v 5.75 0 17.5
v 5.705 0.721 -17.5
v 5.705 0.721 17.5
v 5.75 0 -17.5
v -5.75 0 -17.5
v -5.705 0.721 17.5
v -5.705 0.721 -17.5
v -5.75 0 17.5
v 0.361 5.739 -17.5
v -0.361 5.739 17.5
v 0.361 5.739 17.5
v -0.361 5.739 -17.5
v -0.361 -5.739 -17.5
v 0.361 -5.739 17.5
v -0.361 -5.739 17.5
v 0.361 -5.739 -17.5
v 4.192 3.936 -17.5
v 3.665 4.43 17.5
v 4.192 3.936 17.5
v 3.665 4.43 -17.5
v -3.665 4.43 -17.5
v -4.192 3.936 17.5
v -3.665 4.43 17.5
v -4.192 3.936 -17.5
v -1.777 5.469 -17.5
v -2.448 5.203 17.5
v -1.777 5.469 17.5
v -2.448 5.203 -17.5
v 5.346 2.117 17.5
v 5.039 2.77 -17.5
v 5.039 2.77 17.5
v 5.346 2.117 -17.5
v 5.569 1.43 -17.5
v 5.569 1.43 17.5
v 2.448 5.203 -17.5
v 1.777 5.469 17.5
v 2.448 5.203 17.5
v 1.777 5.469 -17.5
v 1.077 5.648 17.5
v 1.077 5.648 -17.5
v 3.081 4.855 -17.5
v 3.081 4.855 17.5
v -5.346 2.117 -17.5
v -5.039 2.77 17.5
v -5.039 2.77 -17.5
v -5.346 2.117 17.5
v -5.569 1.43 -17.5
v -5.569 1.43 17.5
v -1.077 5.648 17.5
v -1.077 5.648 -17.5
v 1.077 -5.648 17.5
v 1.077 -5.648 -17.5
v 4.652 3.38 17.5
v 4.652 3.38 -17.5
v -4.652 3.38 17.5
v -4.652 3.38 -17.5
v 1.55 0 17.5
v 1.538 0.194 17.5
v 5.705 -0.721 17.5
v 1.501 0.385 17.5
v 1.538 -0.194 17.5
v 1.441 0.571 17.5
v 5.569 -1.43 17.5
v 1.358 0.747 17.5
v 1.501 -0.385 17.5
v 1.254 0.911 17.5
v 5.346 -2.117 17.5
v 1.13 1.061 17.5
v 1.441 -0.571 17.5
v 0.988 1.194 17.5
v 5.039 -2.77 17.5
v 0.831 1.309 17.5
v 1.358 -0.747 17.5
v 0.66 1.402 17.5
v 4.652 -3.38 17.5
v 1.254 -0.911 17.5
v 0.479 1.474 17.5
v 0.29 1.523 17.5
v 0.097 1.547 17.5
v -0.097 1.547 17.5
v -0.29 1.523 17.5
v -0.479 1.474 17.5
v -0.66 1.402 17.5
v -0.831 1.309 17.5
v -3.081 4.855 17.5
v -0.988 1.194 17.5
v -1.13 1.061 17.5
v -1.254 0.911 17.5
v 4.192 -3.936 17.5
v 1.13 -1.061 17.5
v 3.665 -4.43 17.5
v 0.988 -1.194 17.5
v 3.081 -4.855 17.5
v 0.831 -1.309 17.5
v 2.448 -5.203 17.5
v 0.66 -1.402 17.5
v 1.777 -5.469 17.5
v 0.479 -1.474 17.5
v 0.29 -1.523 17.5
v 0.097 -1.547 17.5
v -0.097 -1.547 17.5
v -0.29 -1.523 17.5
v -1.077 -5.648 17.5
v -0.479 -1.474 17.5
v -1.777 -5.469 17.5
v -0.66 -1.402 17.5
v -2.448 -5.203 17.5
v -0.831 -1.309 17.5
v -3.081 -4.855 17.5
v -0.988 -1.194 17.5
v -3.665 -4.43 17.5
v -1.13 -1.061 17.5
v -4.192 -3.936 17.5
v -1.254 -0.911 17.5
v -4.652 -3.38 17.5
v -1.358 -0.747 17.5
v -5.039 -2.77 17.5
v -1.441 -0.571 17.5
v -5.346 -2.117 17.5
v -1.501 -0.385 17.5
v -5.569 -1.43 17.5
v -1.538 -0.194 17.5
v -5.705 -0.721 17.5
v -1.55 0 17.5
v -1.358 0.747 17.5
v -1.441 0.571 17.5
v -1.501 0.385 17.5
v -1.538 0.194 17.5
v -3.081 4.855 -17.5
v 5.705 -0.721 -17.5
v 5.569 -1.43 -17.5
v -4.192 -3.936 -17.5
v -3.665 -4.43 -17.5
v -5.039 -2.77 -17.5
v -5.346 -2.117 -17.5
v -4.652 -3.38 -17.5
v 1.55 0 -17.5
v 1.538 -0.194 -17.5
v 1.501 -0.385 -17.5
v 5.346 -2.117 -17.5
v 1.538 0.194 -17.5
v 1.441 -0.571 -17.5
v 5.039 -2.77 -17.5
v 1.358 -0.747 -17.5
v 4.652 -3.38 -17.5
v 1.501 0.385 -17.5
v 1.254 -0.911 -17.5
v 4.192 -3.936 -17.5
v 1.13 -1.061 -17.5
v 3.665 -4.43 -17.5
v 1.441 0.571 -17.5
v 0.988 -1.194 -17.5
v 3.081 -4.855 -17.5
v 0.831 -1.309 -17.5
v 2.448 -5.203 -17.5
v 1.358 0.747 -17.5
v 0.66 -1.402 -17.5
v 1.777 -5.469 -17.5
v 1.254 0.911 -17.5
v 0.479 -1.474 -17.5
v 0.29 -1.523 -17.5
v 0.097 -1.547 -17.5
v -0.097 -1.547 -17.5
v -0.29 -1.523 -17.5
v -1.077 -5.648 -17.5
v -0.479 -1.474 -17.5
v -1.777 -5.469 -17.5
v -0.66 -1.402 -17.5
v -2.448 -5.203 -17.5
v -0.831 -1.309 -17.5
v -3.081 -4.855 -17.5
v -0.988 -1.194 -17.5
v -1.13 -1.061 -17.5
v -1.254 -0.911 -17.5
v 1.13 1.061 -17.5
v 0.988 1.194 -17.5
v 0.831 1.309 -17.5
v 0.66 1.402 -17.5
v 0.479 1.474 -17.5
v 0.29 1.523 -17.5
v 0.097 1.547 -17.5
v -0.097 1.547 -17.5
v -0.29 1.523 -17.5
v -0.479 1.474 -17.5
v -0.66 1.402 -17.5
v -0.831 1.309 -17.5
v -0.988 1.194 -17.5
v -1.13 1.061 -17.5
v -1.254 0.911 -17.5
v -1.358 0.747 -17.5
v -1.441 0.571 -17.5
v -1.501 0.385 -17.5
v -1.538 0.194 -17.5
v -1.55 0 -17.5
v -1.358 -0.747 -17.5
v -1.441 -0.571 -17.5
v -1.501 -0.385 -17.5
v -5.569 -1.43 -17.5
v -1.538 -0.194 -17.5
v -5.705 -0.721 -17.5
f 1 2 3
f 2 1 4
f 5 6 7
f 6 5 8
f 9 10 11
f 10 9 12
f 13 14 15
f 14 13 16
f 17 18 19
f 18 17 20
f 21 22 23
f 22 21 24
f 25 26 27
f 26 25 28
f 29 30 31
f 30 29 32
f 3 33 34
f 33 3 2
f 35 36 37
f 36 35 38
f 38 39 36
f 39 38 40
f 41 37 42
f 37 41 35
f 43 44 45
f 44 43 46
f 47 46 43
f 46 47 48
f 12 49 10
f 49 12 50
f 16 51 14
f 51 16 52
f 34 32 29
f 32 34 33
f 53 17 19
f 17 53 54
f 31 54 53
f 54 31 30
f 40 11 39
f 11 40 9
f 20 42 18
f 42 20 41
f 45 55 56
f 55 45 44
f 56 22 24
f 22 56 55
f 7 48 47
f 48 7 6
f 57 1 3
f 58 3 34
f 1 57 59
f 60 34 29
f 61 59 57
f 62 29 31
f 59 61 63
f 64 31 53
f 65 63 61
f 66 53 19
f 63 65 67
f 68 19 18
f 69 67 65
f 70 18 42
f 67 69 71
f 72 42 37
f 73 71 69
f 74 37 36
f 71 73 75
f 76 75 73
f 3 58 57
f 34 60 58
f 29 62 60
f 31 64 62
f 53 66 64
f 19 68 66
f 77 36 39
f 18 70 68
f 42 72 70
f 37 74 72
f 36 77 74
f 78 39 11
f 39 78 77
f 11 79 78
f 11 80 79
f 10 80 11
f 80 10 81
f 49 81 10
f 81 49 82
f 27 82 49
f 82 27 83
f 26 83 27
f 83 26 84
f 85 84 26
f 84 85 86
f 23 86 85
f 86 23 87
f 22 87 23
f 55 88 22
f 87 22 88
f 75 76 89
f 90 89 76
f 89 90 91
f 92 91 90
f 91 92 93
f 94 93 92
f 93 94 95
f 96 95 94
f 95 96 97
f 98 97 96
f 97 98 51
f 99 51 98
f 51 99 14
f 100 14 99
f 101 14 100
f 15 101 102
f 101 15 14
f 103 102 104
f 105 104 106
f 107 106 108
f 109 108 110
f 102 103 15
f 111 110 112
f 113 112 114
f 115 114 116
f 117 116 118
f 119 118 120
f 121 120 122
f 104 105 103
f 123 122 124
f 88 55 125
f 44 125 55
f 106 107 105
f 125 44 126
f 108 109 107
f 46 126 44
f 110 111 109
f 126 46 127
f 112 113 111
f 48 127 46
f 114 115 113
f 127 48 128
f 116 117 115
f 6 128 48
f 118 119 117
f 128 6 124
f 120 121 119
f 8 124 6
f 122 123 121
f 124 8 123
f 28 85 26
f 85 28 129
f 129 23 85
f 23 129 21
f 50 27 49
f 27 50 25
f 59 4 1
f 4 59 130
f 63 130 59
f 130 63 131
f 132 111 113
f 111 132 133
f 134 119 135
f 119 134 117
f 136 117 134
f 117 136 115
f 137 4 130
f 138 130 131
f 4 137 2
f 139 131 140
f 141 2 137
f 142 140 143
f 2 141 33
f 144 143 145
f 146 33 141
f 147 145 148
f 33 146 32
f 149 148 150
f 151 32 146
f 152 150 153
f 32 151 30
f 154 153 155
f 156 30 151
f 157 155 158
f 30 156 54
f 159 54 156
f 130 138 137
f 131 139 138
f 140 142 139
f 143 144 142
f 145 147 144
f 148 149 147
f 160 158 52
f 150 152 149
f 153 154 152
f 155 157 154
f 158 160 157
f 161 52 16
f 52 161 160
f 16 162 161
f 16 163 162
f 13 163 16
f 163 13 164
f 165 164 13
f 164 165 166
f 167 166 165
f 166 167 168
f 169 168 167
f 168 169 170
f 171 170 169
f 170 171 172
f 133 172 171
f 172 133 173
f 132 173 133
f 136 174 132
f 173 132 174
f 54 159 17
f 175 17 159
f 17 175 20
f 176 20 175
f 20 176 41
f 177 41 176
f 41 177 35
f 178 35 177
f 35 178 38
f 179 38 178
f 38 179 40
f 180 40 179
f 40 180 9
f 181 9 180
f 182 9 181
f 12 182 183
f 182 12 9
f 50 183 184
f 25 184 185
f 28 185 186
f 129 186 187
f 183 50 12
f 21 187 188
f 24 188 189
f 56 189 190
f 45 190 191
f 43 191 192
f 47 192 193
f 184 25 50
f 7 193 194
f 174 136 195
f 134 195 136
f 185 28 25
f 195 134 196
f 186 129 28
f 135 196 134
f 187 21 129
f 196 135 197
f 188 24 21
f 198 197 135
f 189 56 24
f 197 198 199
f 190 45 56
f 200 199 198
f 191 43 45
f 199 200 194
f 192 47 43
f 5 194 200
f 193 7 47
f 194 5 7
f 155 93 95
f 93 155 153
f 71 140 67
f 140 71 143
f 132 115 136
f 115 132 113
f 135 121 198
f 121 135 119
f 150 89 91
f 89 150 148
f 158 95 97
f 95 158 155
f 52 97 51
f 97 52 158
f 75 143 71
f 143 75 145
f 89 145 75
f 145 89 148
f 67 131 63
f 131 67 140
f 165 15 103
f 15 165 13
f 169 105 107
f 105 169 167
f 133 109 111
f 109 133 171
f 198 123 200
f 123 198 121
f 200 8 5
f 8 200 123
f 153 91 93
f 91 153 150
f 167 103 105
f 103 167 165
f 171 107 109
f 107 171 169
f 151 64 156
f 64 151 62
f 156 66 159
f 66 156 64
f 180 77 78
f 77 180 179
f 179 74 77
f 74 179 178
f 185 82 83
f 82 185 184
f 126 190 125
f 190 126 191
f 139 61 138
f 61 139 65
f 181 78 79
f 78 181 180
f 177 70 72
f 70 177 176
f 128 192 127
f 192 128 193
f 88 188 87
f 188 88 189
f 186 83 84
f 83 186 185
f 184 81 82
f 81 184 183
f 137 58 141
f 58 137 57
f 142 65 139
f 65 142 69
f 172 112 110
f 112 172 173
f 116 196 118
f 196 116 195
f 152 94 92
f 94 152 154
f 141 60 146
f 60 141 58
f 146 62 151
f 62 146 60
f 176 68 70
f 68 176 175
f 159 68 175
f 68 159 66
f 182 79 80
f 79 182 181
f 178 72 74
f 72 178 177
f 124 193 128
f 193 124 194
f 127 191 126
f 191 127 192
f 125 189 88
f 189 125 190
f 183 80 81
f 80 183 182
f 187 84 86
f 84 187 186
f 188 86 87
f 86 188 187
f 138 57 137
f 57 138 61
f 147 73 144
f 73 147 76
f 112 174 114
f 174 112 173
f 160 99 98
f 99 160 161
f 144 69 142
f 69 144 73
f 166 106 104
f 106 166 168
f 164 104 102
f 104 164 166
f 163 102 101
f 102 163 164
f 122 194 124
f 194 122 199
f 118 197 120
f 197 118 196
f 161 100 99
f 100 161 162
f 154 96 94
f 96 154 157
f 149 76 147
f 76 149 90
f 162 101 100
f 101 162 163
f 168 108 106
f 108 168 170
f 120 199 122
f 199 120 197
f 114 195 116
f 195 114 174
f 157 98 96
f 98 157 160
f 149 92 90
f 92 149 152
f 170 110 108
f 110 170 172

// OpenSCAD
$fn = 50;


difference() {
	union() {
		translate(v = [0, 0, -17.5000000000]) {
			cylinder(h = 35, r = 5.7500000000);
		}
	}
	union() {
		translate(v = [0, 0, -100.0000000000]) {
			cylinder(h = 200, r = 1.5500000000);
		}
	}
}
